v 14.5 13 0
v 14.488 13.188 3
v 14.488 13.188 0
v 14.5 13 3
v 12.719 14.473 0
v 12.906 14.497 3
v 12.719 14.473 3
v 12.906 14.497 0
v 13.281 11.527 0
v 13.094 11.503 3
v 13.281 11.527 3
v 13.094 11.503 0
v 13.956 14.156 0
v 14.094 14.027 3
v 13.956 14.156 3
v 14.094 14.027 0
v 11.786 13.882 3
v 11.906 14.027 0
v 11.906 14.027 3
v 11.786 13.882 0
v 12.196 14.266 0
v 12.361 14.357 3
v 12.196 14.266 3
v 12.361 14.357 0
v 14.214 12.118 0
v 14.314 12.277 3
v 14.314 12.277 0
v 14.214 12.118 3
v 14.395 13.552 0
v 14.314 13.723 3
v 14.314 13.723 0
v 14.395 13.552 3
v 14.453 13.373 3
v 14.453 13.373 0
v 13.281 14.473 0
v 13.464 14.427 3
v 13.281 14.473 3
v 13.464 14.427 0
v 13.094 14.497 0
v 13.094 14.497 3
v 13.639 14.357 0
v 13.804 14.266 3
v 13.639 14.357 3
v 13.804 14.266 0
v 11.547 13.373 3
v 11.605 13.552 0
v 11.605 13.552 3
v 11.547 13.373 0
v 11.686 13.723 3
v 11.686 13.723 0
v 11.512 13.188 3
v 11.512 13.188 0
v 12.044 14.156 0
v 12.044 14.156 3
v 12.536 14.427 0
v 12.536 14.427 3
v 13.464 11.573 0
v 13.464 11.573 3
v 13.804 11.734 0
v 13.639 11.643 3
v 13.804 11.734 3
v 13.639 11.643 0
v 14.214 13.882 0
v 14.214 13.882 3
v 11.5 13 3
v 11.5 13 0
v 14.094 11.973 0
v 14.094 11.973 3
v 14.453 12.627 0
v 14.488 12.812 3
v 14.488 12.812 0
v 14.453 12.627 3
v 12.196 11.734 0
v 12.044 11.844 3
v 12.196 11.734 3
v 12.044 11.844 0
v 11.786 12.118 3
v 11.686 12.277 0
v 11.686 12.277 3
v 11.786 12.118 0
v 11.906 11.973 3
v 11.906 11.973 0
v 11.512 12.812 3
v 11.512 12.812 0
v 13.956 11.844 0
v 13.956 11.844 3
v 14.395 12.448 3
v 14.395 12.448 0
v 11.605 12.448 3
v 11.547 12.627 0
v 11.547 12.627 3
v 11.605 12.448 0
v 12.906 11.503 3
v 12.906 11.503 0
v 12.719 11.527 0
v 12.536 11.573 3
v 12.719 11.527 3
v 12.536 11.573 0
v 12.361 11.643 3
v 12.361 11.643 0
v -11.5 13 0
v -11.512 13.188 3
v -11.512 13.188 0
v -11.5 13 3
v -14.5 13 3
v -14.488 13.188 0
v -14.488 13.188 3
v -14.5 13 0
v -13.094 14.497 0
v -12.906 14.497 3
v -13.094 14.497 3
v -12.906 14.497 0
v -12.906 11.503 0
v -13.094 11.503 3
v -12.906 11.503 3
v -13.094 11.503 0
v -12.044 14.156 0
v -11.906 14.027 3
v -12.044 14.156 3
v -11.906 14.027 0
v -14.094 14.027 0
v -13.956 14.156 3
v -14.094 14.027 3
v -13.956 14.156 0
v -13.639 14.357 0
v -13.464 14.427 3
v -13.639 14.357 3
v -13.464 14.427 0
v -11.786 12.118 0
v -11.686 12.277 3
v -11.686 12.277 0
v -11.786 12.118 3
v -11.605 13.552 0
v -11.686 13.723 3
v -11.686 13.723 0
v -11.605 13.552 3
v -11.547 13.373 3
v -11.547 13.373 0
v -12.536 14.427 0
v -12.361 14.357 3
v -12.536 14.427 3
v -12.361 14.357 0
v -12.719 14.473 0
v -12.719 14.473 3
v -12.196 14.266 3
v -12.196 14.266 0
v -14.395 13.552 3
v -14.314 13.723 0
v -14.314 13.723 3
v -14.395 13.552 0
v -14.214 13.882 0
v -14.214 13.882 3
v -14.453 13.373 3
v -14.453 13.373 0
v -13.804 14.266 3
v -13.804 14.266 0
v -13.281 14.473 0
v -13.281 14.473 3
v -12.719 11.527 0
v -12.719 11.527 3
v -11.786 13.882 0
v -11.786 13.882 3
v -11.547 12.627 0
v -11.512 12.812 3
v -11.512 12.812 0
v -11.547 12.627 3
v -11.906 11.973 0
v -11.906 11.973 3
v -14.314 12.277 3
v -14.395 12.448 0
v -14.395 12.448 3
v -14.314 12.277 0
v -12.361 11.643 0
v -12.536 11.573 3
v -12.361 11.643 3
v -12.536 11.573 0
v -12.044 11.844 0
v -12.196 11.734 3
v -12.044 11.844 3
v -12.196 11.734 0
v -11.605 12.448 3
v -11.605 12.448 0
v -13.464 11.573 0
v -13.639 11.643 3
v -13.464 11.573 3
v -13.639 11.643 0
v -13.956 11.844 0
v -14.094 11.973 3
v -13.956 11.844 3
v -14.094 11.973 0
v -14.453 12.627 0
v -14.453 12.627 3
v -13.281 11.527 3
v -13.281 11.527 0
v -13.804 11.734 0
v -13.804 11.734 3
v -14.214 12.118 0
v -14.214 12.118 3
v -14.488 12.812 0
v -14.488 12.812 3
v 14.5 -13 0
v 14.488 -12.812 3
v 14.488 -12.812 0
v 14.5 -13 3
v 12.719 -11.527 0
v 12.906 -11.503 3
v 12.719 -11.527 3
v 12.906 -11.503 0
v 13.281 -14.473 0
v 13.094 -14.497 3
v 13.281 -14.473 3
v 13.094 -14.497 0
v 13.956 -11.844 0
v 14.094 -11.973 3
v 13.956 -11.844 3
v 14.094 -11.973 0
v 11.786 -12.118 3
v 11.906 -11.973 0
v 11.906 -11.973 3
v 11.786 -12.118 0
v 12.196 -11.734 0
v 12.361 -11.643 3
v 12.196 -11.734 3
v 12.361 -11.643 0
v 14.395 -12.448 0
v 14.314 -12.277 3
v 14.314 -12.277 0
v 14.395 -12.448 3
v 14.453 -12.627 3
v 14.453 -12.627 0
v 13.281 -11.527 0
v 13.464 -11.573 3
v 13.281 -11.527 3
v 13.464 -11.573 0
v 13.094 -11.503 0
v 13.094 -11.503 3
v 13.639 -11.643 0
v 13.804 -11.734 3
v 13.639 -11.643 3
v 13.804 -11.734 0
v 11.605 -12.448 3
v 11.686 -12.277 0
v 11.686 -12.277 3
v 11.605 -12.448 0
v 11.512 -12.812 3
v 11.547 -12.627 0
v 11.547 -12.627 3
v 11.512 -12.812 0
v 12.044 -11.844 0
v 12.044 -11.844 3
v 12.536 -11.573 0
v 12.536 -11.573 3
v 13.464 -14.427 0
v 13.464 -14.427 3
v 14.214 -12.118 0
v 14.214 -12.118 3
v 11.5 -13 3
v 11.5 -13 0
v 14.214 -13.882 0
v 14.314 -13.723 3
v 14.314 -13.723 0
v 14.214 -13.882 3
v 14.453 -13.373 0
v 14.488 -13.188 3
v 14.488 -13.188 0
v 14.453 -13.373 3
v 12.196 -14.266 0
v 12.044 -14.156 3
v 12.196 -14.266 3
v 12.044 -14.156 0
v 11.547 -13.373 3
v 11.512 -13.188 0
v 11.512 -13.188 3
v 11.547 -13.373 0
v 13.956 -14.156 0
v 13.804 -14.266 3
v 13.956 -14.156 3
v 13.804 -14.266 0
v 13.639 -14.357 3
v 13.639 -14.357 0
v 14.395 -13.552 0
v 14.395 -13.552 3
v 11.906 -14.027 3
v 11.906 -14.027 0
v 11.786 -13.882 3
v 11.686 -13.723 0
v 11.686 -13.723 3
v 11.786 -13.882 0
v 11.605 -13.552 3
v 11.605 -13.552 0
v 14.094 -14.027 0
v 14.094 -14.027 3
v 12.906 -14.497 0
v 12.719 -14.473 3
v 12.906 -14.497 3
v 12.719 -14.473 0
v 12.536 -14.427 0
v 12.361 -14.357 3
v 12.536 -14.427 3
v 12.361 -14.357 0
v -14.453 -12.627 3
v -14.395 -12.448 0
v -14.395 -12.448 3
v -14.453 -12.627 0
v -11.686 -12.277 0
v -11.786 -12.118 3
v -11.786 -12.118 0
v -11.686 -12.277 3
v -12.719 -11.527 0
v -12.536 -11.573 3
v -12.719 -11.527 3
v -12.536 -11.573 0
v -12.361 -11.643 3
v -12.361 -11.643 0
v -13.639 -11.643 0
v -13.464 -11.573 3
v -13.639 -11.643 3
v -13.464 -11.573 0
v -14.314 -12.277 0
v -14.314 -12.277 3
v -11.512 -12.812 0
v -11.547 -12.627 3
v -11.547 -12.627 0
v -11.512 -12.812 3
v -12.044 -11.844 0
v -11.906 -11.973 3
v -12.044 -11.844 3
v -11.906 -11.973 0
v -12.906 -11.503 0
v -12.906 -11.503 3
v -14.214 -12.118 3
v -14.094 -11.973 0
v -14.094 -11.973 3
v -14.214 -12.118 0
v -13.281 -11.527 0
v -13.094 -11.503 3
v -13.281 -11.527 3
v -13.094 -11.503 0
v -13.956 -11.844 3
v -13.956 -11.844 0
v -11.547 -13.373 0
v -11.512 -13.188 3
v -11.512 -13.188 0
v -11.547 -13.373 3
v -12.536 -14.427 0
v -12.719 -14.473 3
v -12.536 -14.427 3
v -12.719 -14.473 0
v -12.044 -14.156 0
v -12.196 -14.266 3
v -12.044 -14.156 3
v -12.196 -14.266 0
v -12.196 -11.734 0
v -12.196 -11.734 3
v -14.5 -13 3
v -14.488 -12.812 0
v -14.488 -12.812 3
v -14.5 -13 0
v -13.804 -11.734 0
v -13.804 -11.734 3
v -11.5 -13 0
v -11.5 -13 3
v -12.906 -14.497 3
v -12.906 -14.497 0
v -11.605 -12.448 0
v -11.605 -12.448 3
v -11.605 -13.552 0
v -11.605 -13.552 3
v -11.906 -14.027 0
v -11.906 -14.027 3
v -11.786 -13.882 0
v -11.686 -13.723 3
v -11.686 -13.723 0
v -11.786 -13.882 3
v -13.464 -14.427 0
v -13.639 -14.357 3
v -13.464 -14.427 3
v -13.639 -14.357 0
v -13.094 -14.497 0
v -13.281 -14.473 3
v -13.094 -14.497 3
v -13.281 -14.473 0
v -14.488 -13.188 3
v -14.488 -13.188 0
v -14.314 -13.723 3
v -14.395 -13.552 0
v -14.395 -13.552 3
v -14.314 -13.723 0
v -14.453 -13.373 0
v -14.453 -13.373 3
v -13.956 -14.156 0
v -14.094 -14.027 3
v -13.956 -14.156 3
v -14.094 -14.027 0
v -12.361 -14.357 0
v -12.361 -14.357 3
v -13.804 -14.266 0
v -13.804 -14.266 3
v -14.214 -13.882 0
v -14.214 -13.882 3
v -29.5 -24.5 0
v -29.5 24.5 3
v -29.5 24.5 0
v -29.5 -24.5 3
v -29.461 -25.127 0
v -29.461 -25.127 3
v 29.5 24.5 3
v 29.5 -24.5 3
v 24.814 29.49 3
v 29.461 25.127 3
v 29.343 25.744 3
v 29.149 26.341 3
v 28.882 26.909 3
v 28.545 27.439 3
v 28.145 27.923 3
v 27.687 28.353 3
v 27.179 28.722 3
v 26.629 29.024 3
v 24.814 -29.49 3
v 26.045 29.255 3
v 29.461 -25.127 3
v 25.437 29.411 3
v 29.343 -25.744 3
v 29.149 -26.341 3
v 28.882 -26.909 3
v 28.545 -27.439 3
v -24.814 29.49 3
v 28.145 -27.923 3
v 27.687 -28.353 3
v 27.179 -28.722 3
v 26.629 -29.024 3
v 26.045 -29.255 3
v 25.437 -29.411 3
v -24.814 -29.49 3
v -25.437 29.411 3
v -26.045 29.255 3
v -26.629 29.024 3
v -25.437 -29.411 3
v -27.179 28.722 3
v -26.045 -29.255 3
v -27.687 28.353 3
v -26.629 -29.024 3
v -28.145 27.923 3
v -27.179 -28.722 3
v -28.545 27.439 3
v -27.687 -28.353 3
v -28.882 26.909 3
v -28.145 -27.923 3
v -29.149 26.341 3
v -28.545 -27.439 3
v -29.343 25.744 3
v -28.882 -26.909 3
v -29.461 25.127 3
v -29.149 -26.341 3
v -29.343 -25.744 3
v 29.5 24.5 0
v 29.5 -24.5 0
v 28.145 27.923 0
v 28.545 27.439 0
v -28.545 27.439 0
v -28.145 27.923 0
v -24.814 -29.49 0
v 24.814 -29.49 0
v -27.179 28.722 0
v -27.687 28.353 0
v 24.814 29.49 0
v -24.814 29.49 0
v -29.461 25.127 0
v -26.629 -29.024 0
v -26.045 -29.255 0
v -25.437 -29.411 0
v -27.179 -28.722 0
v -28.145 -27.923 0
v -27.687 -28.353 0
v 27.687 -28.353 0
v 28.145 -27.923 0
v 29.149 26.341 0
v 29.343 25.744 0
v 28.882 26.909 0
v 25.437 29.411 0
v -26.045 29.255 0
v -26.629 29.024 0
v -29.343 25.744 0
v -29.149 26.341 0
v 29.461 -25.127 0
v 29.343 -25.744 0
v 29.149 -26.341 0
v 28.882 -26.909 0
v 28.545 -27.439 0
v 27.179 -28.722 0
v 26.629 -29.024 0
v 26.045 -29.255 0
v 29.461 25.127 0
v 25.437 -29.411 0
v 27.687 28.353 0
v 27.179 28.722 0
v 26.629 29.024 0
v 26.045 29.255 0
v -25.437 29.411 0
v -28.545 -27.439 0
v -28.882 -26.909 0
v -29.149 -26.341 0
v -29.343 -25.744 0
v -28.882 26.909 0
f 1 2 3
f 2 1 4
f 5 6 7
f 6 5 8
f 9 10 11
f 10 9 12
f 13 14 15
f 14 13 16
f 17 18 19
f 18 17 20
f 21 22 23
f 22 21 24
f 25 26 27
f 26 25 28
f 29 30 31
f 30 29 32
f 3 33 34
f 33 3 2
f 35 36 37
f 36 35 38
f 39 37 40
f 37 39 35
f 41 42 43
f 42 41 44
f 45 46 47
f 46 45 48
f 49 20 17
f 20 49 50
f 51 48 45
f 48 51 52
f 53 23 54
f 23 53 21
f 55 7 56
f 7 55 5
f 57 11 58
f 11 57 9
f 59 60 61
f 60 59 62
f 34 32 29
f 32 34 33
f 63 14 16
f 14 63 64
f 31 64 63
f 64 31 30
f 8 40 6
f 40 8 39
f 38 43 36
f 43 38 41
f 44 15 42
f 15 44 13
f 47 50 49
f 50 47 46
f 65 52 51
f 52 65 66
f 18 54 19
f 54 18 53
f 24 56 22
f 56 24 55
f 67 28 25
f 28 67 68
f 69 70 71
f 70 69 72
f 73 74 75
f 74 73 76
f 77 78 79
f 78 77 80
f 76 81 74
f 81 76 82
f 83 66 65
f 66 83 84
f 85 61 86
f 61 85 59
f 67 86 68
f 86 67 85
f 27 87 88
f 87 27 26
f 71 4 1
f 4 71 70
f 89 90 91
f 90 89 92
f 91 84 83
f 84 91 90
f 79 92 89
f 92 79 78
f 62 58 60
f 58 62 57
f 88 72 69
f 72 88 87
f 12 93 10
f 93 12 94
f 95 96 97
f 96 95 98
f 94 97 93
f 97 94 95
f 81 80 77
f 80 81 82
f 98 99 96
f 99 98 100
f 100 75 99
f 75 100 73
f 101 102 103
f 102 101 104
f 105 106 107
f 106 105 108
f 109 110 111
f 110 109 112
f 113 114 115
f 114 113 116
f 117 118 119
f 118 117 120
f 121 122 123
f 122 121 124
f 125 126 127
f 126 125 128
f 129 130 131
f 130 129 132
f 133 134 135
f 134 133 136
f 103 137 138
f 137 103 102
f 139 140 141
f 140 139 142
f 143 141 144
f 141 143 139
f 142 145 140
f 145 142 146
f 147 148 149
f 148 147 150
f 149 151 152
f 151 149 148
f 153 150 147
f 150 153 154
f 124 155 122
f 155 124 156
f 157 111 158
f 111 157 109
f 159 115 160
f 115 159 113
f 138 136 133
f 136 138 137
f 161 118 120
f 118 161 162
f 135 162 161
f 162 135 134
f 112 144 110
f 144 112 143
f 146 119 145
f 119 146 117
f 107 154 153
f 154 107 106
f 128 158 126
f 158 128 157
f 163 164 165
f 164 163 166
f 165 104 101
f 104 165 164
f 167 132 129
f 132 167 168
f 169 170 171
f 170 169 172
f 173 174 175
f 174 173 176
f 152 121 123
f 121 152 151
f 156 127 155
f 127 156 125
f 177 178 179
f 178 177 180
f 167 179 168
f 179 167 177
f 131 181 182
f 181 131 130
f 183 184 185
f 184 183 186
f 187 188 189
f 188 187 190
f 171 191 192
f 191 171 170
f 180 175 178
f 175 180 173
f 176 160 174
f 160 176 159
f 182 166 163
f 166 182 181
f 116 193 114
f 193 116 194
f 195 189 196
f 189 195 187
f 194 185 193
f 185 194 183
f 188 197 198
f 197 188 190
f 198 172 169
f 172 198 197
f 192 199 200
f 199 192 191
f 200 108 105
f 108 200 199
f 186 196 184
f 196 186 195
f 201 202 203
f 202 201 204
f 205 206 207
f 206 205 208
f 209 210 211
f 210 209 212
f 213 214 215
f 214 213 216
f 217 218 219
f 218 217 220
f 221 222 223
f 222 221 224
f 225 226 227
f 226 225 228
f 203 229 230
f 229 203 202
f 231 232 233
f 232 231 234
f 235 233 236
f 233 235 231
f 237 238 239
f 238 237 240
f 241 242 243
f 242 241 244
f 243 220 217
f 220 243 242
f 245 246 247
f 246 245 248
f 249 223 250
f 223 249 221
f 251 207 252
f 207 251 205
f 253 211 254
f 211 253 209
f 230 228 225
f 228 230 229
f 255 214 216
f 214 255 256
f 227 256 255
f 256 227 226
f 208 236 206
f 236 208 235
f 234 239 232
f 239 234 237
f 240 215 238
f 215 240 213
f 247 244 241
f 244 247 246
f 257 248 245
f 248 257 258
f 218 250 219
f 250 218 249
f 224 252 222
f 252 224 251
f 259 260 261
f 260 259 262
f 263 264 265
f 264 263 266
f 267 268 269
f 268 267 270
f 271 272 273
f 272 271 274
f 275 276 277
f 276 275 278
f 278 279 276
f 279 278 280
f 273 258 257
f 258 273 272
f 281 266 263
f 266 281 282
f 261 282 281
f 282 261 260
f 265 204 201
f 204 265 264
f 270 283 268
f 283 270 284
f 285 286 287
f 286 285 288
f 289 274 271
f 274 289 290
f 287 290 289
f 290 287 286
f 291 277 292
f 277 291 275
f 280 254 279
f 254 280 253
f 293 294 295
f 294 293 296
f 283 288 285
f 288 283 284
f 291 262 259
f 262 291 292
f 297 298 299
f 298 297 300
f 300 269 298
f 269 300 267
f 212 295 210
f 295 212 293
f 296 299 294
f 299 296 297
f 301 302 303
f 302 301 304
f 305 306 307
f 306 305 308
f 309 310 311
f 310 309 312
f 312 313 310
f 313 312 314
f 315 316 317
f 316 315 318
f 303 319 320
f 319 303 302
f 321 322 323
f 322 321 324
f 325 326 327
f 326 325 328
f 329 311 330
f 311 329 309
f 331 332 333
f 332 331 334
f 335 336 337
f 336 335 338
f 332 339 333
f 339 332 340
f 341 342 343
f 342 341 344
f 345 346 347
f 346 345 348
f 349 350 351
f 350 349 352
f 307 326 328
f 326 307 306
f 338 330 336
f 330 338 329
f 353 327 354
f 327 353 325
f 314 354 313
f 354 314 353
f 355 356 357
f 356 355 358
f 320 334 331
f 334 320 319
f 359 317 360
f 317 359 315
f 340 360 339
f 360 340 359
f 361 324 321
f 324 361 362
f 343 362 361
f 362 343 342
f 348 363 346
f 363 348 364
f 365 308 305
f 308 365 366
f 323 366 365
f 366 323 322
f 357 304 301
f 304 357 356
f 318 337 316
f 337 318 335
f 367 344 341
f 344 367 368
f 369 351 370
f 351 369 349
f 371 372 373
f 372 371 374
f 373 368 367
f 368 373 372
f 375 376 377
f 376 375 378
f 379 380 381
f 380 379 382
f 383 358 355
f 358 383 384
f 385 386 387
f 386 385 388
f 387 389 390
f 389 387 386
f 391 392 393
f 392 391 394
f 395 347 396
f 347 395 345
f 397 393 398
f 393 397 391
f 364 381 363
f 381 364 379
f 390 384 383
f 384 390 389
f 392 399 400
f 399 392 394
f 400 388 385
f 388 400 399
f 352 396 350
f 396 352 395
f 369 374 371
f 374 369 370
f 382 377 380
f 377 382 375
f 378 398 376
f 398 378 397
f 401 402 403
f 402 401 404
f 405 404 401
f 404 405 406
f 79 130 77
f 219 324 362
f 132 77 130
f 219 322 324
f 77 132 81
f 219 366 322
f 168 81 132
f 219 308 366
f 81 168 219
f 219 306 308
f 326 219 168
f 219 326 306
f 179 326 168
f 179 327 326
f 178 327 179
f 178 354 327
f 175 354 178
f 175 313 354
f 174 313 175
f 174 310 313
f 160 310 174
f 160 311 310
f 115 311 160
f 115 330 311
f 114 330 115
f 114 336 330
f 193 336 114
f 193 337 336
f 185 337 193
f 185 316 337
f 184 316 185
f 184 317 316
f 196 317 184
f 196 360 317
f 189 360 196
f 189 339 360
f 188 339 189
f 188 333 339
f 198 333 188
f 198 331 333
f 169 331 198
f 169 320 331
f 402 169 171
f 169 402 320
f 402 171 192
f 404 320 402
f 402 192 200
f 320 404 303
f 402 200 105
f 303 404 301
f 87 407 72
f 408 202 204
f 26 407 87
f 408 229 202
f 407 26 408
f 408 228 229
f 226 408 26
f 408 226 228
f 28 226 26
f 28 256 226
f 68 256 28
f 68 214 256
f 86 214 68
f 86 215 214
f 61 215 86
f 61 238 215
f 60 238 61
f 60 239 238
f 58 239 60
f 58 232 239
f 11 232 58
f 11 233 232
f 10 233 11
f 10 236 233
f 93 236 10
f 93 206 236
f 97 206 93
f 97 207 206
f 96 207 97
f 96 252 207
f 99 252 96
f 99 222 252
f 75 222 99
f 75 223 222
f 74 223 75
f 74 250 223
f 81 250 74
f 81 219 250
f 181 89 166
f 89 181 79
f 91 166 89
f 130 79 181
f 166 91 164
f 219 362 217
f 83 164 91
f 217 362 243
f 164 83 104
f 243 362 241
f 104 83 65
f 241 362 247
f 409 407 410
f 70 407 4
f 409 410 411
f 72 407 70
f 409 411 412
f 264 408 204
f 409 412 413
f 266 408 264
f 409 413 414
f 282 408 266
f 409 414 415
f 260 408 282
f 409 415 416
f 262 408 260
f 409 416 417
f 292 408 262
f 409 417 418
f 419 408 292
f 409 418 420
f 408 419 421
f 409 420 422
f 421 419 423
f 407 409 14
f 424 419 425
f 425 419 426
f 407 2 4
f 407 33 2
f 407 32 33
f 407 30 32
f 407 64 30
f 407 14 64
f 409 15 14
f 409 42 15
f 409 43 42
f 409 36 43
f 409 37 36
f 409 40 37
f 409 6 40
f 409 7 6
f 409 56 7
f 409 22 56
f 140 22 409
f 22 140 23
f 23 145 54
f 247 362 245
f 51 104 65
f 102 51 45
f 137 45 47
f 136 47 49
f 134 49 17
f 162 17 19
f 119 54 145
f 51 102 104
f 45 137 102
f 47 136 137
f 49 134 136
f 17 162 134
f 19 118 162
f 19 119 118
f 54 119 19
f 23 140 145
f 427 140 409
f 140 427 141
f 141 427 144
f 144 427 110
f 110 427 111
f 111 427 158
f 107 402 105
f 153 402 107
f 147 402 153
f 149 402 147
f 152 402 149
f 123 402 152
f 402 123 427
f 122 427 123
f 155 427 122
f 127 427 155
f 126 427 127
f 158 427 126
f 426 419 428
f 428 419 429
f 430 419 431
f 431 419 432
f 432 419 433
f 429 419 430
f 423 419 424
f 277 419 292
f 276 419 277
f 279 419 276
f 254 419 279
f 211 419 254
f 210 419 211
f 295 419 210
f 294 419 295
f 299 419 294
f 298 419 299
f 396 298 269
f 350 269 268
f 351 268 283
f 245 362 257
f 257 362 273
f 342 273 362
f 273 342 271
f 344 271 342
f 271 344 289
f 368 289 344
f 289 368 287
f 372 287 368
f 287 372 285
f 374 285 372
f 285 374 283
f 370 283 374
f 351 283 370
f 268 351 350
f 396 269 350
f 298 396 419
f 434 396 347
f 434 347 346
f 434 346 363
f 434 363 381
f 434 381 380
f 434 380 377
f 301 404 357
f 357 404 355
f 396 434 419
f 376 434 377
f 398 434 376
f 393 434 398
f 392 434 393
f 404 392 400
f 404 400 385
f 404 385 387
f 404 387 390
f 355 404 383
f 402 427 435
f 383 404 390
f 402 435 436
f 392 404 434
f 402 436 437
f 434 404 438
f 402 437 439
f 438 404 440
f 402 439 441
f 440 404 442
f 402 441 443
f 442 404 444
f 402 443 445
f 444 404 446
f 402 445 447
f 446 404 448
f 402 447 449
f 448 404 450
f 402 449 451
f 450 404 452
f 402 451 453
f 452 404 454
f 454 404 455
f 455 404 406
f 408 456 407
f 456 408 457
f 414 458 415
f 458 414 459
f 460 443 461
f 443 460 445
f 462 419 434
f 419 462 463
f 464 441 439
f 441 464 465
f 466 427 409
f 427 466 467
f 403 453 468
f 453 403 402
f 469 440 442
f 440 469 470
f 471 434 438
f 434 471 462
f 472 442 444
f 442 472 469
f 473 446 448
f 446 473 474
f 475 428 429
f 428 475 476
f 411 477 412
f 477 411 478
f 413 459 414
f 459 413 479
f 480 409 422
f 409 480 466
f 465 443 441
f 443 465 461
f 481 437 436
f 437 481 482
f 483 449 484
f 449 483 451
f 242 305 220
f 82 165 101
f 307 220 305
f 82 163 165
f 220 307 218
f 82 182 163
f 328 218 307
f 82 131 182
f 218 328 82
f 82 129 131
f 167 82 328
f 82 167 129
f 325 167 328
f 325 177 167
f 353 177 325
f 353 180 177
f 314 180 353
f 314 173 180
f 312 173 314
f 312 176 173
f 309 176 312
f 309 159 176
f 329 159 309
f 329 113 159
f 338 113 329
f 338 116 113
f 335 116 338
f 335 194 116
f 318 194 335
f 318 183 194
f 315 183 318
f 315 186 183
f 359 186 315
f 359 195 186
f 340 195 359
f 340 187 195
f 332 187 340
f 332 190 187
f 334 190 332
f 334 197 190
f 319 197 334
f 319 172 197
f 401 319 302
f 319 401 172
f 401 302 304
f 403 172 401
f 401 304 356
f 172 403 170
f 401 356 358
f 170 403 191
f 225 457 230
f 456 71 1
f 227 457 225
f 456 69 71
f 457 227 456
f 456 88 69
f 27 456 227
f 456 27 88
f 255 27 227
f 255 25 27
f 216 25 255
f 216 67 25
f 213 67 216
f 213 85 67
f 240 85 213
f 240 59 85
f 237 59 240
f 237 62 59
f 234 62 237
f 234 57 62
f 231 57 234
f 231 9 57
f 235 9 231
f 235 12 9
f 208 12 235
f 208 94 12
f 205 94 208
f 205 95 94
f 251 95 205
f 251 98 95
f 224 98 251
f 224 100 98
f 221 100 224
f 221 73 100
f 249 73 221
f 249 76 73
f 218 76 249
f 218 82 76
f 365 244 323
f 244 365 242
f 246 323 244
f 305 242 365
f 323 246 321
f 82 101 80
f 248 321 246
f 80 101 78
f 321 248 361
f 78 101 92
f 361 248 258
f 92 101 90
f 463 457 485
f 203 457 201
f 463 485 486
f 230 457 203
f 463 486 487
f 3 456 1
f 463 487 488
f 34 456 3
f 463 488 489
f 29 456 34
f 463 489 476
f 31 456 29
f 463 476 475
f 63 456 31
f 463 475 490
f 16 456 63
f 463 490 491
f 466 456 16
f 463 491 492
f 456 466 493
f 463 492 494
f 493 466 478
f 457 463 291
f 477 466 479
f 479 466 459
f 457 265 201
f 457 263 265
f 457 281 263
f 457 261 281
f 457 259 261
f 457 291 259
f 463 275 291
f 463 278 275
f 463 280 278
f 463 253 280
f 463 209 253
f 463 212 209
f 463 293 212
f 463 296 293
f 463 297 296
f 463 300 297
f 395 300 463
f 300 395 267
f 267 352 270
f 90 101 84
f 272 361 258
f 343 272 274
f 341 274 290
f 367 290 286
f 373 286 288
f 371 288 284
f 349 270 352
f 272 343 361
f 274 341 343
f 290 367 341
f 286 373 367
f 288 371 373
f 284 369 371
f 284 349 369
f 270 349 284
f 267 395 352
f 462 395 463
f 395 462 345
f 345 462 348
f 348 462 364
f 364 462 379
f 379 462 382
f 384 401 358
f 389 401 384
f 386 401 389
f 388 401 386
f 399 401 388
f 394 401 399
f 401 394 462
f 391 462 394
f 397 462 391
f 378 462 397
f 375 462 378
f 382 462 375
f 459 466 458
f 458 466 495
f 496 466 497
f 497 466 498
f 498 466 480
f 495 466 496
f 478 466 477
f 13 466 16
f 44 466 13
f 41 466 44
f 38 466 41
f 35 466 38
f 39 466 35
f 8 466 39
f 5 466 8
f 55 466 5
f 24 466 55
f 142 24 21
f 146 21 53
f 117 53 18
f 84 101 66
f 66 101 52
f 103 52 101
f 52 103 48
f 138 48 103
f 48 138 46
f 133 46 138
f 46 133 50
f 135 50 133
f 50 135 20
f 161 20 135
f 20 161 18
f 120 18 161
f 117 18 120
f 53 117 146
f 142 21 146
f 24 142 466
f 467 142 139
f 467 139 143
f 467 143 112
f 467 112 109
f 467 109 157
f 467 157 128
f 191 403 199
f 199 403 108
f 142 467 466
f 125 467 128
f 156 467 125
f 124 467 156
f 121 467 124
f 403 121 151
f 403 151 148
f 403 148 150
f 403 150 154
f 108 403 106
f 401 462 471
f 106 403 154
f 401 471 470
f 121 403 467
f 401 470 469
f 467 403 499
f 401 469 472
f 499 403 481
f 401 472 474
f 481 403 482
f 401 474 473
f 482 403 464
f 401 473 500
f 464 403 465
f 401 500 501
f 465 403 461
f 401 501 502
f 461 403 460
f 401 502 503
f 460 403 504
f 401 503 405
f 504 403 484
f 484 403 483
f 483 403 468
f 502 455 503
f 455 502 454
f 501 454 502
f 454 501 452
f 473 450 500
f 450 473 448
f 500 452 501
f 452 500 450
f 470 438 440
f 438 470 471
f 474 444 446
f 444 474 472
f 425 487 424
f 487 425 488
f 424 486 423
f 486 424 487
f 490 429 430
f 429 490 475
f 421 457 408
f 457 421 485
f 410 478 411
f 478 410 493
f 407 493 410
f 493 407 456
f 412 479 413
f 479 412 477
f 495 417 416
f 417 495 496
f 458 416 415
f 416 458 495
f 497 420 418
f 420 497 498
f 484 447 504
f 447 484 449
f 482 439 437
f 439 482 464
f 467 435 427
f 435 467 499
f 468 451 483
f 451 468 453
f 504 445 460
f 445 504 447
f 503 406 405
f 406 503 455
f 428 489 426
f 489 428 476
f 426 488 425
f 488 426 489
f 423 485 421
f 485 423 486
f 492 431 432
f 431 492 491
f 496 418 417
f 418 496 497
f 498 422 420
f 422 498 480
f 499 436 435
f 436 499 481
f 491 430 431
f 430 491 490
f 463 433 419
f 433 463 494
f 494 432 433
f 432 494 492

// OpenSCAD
$fn = 50;


difference() {
	union() {
		translate(v = [0, 0, 0]) {
			rotate(a = [0, 0, 0]) {
				hull() {
					translate(v = [-24.5000000000, 24.5000000000, 0]) {
						rotate(a = [0, 0, 0]) {
							translate(v = [0, 0, 0]) {
								rotate(a = [0, 0, 0]) {
									cylinder(h = 3, r = 5);
								}
							}
						}
					}
					translate(v = [24.5000000000, 24.5000000000, 0]) {
						rotate(a = [0, 0, 0]) {
							translate(v = [0, 0, 0]) {
								rotate(a = [0, 0, 0]) {
									cylinder(h = 3, r = 5);
								}
							}
						}
					}
					translate(v = [-24.5000000000, -24.5000000000, 0]) {
						rotate(a = [0, 0, 0]) {
							translate(v = [0, 0, 0]) {
								rotate(a = [0, 0, 0]) {
									cylinder(h = 3, r = 5);
								}
							}
						}
					}
					translate(v = [24.5000000000, -24.5000000000, 0]) {
						rotate(a = [0, 0, 0]) {
							translate(v = [0, 0, 0]) {
								rotate(a = [0, 0, 0]) {
									cylinder(h = 3, r = 5);
								}
							}
						}
					}
				}
			}
		}
	}
	union() {
		translate(v = [13.0000000000, 13.0000000000, -125.0000000000]) {
			rotate(a = [0, 0, 0]) {
				cylinder(h = 250, r = 1.5000000000);
			}
		}
		translate(v = [-13.0000000000, 13.0000000000, -125.0000000000]) {
			rotate(a = [0, 0, 0]) {
				cylinder(h = 250, r = 1.5000000000);
			}
		}
		translate(v = [13.0000000000, -13.0000000000, -125.0000000000]) {
			rotate(a = [0, 0, 0]) {
				cylinder(h = 250, r = 1.5000000000);
			}
		}
		translate(v = [-13.0000000000, -13.0000000000, -125.0000000000]) {
			rotate(a = [0, 0, 0]) {
				cylinder(h = 250, r = 1.5000000000);
			}
		}
	}
}
